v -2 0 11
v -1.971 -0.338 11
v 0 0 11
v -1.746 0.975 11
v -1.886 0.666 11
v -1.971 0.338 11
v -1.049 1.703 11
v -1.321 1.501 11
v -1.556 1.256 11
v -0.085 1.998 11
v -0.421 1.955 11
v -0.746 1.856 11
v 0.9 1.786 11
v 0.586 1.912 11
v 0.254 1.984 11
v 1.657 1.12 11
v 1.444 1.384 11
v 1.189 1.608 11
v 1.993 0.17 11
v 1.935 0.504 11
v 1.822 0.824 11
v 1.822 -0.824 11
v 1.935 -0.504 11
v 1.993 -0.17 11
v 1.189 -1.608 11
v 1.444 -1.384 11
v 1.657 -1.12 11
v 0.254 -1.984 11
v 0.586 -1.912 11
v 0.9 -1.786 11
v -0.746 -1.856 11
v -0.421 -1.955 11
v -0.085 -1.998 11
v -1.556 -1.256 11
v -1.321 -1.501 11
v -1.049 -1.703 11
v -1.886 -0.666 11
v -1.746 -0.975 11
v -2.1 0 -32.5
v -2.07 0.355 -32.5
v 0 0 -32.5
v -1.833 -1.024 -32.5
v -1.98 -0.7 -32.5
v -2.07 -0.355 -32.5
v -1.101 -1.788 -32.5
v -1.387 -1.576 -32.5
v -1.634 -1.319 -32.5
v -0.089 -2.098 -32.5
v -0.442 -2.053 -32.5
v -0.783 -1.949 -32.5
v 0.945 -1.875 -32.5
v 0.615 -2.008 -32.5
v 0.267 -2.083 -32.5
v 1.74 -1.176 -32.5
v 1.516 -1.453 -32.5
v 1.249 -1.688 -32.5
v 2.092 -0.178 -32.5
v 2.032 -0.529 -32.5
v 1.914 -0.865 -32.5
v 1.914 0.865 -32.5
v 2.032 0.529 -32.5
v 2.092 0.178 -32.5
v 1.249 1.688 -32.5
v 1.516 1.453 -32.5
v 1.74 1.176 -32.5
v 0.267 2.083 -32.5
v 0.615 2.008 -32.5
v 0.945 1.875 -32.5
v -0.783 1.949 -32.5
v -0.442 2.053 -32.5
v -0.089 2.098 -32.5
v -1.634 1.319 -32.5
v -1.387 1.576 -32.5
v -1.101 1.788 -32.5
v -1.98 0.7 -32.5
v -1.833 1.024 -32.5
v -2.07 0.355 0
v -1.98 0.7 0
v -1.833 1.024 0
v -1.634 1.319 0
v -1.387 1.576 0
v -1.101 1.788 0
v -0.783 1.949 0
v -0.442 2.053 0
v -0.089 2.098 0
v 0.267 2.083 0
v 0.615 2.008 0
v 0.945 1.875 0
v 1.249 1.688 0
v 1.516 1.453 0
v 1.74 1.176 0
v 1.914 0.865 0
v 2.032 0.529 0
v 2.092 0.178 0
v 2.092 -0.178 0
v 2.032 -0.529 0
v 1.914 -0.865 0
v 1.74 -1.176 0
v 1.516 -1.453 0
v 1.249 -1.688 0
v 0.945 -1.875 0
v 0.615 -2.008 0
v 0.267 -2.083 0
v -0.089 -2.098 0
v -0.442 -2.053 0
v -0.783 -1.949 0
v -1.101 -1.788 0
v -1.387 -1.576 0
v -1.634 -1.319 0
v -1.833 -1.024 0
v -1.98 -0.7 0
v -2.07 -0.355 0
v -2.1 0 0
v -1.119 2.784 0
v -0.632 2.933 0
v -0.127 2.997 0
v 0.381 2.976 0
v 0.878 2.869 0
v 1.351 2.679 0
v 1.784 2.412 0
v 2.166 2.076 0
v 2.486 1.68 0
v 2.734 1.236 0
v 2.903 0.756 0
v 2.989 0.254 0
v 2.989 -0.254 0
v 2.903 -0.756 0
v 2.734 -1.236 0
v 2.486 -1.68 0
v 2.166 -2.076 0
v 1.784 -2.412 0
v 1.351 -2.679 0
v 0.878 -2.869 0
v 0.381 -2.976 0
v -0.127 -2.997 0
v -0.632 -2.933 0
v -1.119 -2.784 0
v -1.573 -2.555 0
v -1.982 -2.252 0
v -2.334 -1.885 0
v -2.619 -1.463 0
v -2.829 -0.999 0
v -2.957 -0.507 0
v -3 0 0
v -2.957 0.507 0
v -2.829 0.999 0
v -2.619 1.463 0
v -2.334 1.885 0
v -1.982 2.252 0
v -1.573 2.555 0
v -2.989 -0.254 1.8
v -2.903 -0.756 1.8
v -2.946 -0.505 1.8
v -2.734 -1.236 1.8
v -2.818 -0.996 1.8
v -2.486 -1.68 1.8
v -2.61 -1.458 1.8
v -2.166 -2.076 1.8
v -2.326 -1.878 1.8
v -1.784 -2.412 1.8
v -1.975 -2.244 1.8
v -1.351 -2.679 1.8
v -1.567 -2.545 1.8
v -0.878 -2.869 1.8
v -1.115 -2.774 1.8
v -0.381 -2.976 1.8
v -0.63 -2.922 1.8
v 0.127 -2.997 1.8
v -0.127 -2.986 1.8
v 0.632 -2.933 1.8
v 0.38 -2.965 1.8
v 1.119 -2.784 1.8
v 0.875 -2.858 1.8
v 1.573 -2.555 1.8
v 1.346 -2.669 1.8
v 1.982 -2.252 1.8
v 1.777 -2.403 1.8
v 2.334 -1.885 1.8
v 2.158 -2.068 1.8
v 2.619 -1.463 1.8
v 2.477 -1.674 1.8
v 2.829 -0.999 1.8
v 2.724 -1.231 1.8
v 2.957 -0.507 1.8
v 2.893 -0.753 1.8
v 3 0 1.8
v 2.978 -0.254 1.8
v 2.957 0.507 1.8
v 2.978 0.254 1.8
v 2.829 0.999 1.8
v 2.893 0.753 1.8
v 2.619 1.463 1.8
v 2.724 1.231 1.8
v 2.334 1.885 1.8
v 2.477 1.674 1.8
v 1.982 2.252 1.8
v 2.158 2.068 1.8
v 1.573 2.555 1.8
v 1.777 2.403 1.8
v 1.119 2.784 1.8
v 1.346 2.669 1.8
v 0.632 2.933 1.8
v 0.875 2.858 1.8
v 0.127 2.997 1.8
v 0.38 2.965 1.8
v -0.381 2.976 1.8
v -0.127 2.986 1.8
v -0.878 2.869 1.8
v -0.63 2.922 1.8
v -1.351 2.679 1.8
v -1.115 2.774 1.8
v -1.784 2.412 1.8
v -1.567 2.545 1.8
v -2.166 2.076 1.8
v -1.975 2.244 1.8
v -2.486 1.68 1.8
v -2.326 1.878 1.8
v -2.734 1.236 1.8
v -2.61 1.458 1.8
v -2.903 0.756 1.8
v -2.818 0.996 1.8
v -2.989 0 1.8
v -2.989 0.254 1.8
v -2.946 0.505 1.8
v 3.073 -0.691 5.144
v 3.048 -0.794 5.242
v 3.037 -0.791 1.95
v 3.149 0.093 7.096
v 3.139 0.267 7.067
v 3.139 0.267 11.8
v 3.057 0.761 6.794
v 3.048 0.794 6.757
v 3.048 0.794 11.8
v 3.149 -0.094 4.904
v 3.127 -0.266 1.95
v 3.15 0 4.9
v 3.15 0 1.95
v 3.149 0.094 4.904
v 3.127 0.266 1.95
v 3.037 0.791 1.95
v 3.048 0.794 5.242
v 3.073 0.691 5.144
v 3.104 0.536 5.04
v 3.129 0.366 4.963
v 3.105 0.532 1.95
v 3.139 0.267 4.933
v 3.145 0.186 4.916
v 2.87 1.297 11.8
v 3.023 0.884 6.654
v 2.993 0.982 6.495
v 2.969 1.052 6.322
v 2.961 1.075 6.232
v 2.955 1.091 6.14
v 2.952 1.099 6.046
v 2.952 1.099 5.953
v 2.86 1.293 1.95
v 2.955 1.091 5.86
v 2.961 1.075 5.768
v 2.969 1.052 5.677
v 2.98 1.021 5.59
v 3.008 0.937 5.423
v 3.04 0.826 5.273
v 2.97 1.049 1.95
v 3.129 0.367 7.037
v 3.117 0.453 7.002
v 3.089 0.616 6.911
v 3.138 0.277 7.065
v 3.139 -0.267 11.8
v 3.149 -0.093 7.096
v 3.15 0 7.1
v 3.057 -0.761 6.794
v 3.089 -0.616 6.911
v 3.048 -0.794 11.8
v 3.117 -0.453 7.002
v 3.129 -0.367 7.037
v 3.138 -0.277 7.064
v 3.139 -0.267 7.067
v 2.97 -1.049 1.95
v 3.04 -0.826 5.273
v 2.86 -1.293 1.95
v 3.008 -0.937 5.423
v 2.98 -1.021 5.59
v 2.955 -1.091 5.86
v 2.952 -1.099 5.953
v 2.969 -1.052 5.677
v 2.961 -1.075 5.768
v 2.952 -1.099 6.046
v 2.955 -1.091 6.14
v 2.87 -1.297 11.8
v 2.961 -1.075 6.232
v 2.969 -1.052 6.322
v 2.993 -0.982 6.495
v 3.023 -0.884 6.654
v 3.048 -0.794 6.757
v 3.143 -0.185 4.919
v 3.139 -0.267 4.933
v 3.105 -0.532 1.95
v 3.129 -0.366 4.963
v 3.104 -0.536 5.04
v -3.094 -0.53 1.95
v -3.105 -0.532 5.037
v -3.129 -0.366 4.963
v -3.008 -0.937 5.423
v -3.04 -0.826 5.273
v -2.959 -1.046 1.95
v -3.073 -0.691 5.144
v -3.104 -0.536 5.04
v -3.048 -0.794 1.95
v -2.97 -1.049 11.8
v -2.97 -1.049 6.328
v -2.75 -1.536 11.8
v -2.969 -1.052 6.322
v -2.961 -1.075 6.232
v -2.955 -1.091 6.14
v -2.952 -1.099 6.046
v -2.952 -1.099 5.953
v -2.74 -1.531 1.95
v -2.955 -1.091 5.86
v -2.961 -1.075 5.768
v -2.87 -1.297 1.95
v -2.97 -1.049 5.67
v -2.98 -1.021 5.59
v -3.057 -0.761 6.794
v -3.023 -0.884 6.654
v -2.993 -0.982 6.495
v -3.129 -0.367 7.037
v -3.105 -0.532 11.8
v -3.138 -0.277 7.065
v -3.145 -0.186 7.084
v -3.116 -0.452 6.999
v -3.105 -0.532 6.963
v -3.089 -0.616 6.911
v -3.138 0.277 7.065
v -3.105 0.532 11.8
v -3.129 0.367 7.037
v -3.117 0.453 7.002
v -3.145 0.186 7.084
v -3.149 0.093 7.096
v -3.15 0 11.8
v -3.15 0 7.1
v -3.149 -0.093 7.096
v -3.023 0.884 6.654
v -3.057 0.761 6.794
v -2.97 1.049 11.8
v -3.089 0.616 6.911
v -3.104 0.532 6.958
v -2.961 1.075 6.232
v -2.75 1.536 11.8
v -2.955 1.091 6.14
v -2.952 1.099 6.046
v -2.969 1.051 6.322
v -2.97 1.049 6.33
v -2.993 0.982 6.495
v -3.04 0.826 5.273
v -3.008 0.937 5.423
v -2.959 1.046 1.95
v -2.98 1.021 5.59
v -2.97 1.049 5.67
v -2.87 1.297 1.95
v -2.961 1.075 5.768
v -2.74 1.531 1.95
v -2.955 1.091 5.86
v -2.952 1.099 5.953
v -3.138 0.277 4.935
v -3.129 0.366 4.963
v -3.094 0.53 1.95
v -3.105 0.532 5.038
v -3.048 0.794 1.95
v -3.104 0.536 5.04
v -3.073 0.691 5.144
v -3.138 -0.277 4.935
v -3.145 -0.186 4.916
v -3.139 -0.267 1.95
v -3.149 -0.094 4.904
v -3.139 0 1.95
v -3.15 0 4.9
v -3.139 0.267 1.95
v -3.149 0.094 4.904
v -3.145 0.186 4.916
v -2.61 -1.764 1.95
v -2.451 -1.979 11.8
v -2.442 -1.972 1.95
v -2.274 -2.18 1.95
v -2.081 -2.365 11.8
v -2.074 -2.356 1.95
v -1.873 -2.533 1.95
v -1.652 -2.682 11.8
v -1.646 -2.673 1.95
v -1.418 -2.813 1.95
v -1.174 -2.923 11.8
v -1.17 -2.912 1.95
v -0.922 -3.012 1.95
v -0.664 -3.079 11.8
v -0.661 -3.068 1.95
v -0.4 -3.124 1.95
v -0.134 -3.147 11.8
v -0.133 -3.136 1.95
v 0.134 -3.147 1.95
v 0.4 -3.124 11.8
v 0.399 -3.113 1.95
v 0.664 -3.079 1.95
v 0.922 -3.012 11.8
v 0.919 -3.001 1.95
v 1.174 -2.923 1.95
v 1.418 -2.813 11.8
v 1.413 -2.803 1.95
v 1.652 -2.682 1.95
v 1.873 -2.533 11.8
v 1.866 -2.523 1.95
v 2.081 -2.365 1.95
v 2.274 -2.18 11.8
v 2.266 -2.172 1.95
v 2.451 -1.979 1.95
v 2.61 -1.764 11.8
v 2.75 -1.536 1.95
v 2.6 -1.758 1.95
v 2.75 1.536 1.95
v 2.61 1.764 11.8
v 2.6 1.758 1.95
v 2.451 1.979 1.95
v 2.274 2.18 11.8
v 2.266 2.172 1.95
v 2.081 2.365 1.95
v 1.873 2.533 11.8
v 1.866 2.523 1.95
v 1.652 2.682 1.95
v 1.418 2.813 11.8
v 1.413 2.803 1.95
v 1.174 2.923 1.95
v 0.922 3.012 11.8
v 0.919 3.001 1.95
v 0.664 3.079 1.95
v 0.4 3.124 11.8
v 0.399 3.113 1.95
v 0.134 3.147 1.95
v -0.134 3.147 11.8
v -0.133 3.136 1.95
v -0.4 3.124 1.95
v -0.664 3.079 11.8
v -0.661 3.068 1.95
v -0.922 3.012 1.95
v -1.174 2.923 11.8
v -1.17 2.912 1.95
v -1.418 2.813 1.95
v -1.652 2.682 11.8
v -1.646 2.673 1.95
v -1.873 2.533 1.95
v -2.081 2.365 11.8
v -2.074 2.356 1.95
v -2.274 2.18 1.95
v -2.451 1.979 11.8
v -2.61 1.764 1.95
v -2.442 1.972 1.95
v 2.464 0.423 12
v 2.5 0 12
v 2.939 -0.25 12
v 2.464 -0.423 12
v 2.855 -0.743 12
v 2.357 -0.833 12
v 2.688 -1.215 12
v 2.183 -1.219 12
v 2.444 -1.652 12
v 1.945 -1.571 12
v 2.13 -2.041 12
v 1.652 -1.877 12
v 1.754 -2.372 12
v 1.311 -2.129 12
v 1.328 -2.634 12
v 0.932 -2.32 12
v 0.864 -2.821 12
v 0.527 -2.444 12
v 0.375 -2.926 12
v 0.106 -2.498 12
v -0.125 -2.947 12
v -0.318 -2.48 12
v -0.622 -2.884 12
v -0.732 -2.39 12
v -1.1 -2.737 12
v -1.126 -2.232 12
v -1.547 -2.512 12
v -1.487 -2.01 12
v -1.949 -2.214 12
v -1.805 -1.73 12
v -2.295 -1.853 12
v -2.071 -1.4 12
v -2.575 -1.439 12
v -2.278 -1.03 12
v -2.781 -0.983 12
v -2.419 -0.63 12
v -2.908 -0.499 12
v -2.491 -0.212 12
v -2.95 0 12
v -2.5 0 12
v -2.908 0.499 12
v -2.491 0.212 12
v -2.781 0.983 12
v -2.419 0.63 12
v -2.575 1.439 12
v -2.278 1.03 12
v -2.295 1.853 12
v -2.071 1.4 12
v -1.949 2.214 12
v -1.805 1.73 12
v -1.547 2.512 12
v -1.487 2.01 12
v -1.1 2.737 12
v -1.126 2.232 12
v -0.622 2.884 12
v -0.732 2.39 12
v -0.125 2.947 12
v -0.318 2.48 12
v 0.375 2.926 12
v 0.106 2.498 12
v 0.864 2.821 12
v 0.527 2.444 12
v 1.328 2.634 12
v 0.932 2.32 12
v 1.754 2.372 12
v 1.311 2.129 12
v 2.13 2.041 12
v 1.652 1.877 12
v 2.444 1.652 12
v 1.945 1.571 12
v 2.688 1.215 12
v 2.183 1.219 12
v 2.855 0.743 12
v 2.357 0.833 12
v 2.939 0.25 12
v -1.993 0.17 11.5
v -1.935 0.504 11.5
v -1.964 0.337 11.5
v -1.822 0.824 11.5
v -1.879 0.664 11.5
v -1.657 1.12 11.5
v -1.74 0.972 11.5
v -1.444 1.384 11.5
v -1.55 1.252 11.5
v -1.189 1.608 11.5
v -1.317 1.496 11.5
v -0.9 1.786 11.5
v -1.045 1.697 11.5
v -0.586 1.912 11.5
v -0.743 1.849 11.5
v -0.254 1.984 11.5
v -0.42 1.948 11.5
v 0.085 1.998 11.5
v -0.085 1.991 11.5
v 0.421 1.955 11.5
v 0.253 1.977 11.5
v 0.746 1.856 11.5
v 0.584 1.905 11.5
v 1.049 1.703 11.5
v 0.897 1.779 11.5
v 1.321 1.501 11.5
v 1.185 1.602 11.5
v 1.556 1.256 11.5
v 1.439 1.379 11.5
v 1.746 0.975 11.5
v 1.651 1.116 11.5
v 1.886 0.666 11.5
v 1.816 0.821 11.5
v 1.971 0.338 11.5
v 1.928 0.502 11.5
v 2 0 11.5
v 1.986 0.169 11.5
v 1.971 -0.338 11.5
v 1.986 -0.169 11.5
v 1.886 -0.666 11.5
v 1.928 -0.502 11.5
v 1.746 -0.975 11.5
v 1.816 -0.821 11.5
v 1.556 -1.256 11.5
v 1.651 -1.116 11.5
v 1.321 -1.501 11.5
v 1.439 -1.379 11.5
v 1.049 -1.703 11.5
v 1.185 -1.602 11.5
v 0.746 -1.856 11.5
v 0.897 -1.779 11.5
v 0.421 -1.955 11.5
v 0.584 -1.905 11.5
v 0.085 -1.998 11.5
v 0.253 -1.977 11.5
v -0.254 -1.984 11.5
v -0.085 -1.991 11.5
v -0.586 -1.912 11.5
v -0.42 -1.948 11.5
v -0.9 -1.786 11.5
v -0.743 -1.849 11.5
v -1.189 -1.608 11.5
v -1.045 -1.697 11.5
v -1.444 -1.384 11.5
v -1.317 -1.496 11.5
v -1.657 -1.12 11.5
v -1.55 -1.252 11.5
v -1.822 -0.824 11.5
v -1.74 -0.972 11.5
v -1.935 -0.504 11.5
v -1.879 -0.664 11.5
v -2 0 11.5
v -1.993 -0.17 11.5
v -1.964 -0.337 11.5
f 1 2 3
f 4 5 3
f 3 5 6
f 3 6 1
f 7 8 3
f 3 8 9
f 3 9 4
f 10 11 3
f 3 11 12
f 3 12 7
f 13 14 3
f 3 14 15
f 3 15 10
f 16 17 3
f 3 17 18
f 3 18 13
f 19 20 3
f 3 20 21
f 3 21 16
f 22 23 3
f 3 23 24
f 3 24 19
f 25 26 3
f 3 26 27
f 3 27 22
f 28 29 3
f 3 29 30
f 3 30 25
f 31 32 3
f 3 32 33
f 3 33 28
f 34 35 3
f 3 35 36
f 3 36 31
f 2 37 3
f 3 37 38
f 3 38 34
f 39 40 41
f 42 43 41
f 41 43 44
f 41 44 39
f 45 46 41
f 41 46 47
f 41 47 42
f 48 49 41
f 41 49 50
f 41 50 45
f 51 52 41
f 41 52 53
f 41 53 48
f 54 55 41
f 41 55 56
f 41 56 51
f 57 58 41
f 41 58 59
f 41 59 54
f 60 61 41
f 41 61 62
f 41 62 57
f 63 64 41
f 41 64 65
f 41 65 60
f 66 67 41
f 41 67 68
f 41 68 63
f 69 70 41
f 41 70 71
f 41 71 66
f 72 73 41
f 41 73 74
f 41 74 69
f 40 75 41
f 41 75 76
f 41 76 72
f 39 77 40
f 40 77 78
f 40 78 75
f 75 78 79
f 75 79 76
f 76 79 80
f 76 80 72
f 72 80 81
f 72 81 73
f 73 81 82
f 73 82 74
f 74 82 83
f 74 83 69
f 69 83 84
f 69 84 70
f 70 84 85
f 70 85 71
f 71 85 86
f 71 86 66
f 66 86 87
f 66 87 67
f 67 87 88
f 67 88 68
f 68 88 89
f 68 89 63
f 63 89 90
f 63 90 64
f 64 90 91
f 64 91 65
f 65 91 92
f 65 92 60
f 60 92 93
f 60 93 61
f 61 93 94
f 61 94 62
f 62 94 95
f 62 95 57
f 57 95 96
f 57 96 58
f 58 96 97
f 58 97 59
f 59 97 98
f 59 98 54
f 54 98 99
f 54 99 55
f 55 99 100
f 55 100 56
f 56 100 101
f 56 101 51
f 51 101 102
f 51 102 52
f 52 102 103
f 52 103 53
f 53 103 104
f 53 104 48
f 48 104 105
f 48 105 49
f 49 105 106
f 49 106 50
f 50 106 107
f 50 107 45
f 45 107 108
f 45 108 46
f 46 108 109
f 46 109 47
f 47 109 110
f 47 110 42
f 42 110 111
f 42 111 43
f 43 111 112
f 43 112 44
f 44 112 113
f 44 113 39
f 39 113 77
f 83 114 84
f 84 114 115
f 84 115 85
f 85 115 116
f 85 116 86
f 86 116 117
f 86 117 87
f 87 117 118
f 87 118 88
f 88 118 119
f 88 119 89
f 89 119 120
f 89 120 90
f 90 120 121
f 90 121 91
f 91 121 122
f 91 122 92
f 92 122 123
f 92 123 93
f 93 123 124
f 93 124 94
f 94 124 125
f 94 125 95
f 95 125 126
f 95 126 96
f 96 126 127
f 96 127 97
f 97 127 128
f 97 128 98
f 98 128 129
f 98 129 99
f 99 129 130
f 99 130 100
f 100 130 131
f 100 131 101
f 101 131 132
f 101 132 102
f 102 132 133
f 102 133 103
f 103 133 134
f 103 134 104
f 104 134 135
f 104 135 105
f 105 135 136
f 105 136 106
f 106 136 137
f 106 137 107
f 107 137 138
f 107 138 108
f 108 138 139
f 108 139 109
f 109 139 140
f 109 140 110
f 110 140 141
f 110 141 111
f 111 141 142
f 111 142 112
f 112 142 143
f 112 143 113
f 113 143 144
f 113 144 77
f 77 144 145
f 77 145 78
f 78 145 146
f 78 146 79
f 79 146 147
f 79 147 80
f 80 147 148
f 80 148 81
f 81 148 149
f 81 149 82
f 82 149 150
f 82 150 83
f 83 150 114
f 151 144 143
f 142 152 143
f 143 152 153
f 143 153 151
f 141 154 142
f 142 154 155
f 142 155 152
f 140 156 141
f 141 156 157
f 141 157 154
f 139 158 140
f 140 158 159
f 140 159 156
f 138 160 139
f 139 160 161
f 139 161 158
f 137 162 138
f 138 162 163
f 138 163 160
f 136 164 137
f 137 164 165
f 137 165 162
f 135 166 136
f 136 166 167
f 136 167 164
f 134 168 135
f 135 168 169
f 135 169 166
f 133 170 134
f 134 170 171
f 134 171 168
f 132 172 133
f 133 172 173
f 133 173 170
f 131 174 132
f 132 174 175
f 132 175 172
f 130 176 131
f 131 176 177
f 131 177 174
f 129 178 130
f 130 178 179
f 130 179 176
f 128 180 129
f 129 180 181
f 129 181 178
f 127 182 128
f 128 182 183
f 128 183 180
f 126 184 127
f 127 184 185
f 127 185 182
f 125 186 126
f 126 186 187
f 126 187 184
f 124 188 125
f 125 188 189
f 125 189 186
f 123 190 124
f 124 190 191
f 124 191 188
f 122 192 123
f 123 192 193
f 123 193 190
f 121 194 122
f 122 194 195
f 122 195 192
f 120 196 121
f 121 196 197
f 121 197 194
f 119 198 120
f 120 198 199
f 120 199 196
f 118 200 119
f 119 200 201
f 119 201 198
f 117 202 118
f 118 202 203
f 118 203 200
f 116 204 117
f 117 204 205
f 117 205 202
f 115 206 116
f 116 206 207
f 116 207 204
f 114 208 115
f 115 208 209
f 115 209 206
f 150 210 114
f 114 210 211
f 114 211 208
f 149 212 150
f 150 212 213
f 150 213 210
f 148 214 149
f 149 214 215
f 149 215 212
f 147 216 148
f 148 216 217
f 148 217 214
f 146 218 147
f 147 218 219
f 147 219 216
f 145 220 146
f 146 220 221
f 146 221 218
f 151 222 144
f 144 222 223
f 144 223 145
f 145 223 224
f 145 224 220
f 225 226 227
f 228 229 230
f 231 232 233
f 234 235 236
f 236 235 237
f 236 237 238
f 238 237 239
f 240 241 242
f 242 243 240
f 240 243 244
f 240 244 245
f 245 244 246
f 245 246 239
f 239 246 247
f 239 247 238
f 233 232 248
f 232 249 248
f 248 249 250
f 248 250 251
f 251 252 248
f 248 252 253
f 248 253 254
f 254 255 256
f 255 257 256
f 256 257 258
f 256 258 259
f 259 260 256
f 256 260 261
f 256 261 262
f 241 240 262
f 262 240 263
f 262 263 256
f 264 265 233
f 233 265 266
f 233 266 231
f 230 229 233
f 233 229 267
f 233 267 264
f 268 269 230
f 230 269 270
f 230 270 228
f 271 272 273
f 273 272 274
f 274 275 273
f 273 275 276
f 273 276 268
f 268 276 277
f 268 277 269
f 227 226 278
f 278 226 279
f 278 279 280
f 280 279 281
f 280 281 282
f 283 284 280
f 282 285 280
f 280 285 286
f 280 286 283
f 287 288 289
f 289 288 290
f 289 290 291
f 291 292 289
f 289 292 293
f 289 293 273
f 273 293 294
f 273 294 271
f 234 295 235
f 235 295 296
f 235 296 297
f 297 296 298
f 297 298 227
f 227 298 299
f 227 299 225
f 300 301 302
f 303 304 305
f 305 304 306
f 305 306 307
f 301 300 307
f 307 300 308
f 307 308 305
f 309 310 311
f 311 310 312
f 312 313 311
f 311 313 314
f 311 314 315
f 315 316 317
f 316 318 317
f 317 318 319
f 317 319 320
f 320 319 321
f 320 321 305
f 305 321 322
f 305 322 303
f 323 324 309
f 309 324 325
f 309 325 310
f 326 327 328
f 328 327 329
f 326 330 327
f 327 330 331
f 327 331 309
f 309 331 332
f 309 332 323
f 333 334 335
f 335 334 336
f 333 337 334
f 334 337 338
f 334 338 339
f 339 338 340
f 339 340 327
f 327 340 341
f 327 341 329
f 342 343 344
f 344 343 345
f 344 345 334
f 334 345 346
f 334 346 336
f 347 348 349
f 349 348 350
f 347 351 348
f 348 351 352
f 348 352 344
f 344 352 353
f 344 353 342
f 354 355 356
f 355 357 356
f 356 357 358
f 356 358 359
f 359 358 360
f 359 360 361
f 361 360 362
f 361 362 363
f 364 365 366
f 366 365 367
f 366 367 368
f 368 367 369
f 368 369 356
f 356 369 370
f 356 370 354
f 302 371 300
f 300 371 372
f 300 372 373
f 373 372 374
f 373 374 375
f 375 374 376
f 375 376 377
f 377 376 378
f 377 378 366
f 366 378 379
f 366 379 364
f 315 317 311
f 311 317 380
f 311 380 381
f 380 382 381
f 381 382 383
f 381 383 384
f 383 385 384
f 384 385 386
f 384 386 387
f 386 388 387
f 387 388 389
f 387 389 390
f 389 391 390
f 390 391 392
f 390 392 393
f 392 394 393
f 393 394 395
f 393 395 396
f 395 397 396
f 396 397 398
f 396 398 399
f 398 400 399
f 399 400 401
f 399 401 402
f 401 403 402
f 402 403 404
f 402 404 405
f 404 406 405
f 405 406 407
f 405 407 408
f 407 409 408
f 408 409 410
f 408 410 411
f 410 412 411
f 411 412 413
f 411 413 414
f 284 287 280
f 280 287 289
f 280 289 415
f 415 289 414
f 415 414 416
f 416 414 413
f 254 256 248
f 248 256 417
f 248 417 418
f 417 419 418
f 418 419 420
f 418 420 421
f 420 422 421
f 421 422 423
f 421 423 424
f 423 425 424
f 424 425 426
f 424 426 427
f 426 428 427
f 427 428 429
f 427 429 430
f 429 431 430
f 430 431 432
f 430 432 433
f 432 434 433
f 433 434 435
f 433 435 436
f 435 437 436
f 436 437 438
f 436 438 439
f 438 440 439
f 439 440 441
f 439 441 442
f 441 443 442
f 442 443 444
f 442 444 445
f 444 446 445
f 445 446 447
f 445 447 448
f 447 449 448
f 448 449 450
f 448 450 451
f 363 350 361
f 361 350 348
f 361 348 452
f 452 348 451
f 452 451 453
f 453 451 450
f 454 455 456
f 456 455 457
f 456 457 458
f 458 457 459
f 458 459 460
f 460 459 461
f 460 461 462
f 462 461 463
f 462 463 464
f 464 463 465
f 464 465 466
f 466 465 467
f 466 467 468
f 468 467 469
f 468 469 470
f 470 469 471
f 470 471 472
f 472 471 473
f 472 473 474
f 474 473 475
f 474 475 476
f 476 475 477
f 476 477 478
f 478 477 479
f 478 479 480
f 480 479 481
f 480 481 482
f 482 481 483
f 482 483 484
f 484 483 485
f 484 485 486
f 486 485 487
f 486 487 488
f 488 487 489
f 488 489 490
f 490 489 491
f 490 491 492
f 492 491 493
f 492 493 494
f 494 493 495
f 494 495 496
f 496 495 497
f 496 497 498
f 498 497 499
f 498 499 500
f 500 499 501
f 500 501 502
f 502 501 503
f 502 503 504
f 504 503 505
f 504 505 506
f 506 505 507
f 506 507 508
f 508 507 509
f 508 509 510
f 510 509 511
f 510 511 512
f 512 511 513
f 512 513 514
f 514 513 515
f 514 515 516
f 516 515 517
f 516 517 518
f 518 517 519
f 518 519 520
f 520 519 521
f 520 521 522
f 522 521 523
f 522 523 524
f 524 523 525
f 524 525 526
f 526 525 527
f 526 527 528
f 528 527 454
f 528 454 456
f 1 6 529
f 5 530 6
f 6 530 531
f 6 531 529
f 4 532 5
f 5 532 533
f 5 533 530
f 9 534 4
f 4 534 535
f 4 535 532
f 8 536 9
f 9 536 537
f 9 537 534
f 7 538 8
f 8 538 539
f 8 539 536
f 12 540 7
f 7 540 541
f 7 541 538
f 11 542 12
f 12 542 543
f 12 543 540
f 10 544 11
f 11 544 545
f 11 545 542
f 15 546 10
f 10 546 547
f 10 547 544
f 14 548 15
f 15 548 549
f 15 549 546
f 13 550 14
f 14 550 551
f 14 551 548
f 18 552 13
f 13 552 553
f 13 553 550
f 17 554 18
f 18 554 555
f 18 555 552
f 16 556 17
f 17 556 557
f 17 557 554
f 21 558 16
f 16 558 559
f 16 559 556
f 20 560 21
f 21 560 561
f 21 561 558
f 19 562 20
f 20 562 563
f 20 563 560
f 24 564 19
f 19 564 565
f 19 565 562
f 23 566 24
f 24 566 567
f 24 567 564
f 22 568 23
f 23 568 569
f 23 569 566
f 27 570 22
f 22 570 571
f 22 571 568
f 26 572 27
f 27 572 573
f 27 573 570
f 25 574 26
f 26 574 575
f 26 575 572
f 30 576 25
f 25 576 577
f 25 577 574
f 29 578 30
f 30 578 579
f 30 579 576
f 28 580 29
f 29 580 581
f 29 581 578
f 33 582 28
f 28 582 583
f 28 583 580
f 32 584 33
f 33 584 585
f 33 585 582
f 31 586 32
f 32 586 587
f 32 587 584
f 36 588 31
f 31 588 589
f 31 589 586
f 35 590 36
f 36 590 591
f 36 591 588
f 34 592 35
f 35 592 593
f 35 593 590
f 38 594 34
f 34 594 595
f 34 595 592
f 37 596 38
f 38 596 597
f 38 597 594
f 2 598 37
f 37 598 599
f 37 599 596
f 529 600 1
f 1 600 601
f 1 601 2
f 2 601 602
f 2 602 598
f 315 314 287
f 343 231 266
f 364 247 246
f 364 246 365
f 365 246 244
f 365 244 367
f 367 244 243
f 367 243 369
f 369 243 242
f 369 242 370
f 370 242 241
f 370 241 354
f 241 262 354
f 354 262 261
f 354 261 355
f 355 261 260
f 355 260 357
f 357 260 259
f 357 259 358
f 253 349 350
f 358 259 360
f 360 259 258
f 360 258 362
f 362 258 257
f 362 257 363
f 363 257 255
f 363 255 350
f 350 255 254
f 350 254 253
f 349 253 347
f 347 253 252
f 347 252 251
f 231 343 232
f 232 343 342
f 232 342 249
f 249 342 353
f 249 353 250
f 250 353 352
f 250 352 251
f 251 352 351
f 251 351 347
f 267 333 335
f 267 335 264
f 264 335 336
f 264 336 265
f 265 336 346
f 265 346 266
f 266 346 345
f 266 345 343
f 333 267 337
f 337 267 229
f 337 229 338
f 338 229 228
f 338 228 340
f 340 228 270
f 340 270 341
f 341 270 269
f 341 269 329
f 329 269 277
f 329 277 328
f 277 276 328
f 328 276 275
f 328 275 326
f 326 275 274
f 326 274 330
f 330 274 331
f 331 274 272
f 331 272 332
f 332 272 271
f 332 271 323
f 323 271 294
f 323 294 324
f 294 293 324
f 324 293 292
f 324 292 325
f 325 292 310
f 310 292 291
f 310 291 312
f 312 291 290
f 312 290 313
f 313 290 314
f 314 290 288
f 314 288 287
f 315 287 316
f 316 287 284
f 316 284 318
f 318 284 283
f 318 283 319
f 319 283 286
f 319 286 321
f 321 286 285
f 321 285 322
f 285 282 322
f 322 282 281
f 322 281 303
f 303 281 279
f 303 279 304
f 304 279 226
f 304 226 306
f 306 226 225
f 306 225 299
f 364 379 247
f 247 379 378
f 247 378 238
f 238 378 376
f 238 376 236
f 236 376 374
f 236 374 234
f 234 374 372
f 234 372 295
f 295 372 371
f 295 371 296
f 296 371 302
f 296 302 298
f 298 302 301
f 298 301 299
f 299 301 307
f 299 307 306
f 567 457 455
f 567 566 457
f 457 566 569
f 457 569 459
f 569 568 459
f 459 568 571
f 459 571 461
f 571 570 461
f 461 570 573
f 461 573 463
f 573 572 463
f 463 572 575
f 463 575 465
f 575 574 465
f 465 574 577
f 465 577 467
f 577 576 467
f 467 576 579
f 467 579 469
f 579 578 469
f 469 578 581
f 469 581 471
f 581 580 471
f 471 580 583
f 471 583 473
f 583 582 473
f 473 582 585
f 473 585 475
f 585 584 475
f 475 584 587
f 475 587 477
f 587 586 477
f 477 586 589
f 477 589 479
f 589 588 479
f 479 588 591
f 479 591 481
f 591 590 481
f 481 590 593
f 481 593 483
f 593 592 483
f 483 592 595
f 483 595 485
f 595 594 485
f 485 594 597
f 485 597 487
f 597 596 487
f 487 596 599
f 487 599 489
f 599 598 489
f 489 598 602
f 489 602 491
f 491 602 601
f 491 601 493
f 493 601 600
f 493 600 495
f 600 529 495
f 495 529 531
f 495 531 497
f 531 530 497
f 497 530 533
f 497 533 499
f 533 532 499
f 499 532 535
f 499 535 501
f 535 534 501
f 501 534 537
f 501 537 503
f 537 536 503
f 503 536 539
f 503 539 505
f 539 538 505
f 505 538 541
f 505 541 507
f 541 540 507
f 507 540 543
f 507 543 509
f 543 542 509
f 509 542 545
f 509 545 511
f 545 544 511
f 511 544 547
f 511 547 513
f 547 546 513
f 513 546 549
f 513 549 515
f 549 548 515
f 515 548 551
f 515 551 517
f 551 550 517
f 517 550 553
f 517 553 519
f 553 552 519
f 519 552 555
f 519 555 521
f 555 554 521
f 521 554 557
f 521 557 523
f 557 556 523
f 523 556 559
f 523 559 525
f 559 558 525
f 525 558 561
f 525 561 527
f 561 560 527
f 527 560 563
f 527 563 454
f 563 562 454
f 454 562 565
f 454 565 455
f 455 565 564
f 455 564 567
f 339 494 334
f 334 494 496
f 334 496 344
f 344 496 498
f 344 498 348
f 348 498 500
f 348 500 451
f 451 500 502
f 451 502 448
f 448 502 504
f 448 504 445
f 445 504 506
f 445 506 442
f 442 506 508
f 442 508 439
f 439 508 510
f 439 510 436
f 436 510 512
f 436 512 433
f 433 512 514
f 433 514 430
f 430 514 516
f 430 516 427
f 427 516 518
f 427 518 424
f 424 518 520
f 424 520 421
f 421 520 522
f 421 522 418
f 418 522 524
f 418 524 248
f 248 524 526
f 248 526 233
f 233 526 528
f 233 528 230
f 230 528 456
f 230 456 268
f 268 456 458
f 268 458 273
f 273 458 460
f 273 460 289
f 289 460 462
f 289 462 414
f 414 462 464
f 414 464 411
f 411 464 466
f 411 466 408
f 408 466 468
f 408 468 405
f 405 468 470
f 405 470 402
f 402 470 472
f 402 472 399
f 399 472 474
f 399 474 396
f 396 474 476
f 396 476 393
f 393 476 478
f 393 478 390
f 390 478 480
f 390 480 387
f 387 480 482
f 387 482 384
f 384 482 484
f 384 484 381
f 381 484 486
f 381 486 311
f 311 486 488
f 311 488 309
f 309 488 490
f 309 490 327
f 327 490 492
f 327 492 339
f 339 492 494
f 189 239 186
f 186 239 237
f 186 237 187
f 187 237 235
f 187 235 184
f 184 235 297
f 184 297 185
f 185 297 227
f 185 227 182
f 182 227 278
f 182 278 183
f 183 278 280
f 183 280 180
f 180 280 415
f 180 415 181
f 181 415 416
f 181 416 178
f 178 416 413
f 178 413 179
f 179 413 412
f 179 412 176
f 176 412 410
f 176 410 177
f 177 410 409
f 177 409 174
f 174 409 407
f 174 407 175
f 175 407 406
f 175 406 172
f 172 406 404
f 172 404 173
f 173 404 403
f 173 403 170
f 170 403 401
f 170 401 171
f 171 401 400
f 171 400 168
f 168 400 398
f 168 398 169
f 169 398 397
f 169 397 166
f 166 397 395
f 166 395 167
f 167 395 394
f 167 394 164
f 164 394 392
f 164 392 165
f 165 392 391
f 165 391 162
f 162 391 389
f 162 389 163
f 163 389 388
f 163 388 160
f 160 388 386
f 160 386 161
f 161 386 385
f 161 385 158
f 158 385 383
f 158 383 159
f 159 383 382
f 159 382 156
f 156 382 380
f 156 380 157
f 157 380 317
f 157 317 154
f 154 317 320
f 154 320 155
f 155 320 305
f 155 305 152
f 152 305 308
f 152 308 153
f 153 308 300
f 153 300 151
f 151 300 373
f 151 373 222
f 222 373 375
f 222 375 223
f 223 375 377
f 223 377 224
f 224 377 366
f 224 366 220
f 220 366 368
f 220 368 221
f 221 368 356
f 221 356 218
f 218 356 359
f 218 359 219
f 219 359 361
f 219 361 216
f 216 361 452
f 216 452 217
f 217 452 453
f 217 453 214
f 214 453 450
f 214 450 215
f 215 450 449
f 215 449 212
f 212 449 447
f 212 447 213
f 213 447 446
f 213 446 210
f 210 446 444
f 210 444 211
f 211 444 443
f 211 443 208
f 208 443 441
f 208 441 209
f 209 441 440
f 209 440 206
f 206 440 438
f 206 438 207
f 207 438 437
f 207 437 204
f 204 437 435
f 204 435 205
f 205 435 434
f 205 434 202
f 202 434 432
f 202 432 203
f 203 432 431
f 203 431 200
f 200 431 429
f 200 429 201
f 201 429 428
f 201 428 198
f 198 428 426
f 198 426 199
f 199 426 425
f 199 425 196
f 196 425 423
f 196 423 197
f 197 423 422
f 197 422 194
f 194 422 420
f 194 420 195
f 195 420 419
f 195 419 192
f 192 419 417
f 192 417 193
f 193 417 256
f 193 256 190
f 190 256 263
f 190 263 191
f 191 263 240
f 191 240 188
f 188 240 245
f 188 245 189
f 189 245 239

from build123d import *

# Parameters (mm, degrees)
CUT_EXTRUDE_1_DEPTH      = 33.803886965
CUT_EXTRUDE_1_DEPTH_BACK = 33.803886965
SKETCH_3_R               = 1.1
CHAMFER_1_SIZE           = 0.5
CHAMFER_3_SIZE           = 0.2


with BuildPart() as part:
    # 스케치2 → 회전1 (revolve)
    with BuildSketch(Plane(origin=(0, 0, 0), x_dir=(1, 0, 0), z_dir=(0, 1, 0)), mode=Mode.PRIVATE) as revolve_1_sk:
        Polygon((0, 32.5), (0, -11), (2, -11), (2, -12), (3.15, -12), (3.15, -2), (3, -2), (3, 0), (2.1, 0), (2.1, 32.5), align=None)
    revolve(revolve_1_sk.sketch.rotate(Axis((0, 0, -32.5), (0, 0, 1)), 180), axis=Axis((0, 0, -32.5), (0, 0, 1)))

    # 스케치3 → 컷-돌출1 (cut, two sides: drawn at the far end of the back side and taken through both)
    with BuildSketch(Plane(origin=(0, 0, 0), x_dir=(0, 0, -1), z_dir=(1, 0, 0)).offset(-CUT_EXTRUDE_1_DEPTH_BACK)):
        with Locations((-6, 0)):
            Circle(SKETCH_3_R)
    extrude(amount=CUT_EXTRUDE_1_DEPTH + CUT_EXTRUDE_1_DEPTH_BACK, mode=Mode.SUBTRACT)

    # 모따기1
    chamfer_1_edges = [part.edges().sort_by_distance(p)[0] for p in [
        (2, 0, 12),
    ]]
    chamfer(chamfer_1_edges, length=CHAMFER_1_SIZE)

    # 모따기3
    # the kernel refuses this chamfer: 0.2 mm, written as the material it adds along each edge
    with BuildSketch(Plane(origin=(0, 0, 2), x_dir=(-1, 0, 0), z_dir=(0, 1, 0))) as chamfer_3_piece_1_section:
        Polygon((3 + CHAMFER_3_SIZE, 0), (3, -CHAMFER_3_SIZE), (3, 0), align=None)
    chamfer_3_piece_1 = revolve(axis=Axis((0, 0, 2), (0, 0, 1)), mode=Mode.PRIVATE)
    chamfer_3_piece_1 = chamfer_3_piece_1 & Plane(origin=(0, 0, 1.877341944), x_dir=(-1, 0, 0), z_dir=(0, 0, -1)) * Cylinder(3.15, 13, mode=Mode.PRIVATE)
    add(chamfer_3_piece_1)
    # the kernel refuses this chamfer: 0.2 mm, written as the material it takes off along each edge
    with BuildSketch(Plane(origin=(0, 0, 12), x_dir=(-1, 0, 0), z_dir=(0, 1, 0))) as chamfer_3_2_piece_1:
        Polygon((3.15 - CHAMFER_3_SIZE, 0), (3.15, -CHAMFER_3_SIZE), (3.15, 0), align=None)
    revolve(axis=Axis((0, 0, 12), (0, 0, 1)), mode=Mode.SUBTRACT)


solid = part.part
